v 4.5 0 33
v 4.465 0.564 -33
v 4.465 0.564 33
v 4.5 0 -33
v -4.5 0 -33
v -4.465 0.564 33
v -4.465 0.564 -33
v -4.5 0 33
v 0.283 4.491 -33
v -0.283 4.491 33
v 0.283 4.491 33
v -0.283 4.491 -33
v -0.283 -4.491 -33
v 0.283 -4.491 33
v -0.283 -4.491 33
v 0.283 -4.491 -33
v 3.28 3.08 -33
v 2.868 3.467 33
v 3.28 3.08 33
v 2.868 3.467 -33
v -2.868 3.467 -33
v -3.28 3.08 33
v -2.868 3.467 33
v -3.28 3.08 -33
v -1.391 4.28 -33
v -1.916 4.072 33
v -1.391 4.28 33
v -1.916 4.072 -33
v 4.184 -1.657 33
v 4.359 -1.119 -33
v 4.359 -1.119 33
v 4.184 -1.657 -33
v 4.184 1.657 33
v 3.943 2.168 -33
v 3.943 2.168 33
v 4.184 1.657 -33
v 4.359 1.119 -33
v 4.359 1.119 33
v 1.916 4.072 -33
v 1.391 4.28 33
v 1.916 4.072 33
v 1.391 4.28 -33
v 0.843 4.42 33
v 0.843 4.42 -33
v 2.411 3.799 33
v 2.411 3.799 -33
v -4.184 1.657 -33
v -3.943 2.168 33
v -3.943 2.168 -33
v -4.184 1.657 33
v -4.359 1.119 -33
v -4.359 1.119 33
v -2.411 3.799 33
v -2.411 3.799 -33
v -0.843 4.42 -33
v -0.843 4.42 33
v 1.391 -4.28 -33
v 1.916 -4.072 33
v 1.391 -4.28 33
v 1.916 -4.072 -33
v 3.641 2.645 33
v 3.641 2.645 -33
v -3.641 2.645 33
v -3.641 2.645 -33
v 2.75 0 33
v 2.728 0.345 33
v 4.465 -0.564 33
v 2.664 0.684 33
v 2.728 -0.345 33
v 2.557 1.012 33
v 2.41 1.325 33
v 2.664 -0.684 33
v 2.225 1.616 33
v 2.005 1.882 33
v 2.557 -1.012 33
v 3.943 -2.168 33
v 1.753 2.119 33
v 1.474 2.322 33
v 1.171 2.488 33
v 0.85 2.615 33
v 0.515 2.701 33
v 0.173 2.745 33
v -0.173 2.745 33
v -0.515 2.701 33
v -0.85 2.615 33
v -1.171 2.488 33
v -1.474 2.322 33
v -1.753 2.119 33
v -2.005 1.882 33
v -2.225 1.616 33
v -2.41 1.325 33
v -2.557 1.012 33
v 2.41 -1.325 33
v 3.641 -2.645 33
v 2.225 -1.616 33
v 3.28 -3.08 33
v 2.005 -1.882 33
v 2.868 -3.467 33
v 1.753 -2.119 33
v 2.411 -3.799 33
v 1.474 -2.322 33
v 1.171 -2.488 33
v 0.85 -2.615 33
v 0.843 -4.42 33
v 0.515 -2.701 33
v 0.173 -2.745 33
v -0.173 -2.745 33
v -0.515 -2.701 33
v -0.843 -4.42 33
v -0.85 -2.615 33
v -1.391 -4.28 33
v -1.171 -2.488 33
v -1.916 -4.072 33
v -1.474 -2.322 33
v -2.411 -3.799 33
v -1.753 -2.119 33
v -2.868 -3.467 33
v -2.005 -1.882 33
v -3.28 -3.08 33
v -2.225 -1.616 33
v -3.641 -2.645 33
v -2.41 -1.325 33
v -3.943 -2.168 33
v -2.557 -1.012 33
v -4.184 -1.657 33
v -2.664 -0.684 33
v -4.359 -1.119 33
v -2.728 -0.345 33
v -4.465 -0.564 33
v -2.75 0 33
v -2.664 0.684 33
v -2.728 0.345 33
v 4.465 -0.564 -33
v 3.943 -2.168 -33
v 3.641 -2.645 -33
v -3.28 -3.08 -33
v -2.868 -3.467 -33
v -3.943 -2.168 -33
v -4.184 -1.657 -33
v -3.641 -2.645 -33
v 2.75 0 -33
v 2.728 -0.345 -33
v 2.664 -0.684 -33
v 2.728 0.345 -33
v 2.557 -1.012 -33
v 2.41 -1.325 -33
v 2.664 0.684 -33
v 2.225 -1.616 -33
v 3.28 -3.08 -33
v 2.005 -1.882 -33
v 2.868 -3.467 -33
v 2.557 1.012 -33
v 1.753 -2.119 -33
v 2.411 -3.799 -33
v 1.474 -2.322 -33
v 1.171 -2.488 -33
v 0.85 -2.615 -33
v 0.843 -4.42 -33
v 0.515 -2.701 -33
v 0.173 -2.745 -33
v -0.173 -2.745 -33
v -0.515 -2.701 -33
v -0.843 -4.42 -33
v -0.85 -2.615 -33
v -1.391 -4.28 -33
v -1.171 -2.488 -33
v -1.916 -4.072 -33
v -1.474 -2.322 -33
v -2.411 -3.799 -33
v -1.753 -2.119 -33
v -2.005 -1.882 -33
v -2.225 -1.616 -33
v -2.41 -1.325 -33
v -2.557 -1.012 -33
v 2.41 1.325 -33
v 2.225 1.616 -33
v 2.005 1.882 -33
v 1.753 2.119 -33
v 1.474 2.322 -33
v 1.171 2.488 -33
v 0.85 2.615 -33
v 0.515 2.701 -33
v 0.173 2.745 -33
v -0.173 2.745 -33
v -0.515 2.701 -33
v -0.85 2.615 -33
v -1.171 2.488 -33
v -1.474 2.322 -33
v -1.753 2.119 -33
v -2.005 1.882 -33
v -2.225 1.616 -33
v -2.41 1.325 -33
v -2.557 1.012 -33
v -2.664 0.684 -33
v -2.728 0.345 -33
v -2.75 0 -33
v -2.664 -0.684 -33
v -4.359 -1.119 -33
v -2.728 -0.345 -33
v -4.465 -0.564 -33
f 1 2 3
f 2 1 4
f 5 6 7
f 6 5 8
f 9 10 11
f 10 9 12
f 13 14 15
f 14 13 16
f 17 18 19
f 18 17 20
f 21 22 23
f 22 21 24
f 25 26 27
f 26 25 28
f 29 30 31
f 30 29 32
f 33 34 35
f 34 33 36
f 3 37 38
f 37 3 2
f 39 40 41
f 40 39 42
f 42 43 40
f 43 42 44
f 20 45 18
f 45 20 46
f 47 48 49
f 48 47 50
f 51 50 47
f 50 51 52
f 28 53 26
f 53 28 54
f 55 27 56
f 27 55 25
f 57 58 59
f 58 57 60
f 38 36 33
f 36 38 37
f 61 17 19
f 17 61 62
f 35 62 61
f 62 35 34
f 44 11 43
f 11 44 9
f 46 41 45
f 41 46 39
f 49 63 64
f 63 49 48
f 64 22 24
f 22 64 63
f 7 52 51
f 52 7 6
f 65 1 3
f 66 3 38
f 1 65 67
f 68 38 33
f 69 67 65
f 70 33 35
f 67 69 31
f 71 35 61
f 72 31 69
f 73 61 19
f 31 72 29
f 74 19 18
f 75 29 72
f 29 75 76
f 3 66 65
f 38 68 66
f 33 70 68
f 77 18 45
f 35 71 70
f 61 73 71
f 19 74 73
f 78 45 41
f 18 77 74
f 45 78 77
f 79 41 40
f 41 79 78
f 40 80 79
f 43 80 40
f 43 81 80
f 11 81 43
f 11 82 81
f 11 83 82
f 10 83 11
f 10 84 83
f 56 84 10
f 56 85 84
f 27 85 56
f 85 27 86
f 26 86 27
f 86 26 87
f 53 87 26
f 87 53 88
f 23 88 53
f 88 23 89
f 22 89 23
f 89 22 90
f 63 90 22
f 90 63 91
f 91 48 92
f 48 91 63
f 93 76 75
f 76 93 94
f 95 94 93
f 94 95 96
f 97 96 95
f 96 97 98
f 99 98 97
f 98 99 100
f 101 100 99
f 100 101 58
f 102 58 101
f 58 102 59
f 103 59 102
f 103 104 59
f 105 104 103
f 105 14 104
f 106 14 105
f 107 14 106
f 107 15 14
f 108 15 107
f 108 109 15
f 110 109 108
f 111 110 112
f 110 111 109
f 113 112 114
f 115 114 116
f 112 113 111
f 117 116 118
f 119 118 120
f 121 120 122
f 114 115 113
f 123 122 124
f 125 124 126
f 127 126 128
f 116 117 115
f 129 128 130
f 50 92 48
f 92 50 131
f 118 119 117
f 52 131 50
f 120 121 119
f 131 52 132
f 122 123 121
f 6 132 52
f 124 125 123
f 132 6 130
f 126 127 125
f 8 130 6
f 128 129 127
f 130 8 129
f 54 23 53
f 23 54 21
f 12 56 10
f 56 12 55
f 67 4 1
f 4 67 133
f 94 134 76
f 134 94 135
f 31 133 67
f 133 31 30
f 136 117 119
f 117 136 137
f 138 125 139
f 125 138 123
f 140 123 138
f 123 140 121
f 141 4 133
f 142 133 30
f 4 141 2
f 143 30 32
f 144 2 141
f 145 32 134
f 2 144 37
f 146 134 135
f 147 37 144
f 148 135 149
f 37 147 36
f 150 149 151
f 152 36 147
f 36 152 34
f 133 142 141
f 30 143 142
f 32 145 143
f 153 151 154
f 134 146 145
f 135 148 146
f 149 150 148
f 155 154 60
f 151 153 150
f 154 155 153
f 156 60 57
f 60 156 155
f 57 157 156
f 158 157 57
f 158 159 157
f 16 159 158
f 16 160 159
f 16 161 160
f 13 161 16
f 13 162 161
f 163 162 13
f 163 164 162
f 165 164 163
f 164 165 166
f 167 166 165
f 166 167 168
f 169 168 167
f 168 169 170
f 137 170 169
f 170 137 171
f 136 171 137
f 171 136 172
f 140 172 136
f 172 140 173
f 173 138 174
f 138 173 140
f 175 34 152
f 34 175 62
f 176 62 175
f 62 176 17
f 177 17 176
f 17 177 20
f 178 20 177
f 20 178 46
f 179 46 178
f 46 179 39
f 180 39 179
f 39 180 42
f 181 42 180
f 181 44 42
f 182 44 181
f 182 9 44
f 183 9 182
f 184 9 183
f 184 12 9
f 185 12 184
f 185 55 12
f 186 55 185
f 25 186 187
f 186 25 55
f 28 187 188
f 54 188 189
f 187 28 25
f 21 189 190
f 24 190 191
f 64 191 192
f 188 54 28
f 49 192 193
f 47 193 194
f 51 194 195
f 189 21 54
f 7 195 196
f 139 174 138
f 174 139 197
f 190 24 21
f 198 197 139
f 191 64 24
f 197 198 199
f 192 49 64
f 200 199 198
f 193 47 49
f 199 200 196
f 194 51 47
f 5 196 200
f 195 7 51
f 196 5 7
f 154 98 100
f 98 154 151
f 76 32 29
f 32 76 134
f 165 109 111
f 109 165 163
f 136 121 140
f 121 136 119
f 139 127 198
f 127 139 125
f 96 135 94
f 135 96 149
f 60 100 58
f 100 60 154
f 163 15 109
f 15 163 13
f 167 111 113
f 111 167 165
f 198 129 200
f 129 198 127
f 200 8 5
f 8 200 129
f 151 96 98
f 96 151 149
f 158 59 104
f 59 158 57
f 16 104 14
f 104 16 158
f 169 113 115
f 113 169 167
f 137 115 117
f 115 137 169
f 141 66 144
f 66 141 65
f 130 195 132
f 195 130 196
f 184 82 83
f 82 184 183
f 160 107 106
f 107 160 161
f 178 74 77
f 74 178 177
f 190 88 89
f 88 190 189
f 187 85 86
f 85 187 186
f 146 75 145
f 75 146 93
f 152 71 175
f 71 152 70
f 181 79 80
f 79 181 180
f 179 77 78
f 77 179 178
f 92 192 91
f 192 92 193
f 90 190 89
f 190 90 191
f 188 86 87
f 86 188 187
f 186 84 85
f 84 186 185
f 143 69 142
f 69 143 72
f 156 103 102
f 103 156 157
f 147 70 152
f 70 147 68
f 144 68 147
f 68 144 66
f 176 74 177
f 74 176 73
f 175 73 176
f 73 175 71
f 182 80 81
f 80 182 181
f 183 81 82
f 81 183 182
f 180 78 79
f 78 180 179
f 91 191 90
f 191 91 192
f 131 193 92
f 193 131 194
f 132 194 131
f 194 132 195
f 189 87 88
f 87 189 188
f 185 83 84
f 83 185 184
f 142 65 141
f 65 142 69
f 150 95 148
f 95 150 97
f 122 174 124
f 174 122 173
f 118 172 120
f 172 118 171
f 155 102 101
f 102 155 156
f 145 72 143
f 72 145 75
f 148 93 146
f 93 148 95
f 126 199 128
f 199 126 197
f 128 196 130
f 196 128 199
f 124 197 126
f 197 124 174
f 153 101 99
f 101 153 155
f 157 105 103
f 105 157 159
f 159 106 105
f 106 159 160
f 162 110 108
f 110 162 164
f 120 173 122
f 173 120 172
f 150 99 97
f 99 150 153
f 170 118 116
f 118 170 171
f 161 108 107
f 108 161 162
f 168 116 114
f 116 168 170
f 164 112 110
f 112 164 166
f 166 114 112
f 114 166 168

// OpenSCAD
$fn = 50;


difference() {
	union() {
		translate(v = [0, 0, -33.0000000000]) {
			cylinder(h = 66, r = 4.5000000000);
		}
	}
	union() {
		translate(v = [0, 0, -100.0000000000]) {
			cylinder(h = 200, r = 2.7500000000);
		}
	}
}
